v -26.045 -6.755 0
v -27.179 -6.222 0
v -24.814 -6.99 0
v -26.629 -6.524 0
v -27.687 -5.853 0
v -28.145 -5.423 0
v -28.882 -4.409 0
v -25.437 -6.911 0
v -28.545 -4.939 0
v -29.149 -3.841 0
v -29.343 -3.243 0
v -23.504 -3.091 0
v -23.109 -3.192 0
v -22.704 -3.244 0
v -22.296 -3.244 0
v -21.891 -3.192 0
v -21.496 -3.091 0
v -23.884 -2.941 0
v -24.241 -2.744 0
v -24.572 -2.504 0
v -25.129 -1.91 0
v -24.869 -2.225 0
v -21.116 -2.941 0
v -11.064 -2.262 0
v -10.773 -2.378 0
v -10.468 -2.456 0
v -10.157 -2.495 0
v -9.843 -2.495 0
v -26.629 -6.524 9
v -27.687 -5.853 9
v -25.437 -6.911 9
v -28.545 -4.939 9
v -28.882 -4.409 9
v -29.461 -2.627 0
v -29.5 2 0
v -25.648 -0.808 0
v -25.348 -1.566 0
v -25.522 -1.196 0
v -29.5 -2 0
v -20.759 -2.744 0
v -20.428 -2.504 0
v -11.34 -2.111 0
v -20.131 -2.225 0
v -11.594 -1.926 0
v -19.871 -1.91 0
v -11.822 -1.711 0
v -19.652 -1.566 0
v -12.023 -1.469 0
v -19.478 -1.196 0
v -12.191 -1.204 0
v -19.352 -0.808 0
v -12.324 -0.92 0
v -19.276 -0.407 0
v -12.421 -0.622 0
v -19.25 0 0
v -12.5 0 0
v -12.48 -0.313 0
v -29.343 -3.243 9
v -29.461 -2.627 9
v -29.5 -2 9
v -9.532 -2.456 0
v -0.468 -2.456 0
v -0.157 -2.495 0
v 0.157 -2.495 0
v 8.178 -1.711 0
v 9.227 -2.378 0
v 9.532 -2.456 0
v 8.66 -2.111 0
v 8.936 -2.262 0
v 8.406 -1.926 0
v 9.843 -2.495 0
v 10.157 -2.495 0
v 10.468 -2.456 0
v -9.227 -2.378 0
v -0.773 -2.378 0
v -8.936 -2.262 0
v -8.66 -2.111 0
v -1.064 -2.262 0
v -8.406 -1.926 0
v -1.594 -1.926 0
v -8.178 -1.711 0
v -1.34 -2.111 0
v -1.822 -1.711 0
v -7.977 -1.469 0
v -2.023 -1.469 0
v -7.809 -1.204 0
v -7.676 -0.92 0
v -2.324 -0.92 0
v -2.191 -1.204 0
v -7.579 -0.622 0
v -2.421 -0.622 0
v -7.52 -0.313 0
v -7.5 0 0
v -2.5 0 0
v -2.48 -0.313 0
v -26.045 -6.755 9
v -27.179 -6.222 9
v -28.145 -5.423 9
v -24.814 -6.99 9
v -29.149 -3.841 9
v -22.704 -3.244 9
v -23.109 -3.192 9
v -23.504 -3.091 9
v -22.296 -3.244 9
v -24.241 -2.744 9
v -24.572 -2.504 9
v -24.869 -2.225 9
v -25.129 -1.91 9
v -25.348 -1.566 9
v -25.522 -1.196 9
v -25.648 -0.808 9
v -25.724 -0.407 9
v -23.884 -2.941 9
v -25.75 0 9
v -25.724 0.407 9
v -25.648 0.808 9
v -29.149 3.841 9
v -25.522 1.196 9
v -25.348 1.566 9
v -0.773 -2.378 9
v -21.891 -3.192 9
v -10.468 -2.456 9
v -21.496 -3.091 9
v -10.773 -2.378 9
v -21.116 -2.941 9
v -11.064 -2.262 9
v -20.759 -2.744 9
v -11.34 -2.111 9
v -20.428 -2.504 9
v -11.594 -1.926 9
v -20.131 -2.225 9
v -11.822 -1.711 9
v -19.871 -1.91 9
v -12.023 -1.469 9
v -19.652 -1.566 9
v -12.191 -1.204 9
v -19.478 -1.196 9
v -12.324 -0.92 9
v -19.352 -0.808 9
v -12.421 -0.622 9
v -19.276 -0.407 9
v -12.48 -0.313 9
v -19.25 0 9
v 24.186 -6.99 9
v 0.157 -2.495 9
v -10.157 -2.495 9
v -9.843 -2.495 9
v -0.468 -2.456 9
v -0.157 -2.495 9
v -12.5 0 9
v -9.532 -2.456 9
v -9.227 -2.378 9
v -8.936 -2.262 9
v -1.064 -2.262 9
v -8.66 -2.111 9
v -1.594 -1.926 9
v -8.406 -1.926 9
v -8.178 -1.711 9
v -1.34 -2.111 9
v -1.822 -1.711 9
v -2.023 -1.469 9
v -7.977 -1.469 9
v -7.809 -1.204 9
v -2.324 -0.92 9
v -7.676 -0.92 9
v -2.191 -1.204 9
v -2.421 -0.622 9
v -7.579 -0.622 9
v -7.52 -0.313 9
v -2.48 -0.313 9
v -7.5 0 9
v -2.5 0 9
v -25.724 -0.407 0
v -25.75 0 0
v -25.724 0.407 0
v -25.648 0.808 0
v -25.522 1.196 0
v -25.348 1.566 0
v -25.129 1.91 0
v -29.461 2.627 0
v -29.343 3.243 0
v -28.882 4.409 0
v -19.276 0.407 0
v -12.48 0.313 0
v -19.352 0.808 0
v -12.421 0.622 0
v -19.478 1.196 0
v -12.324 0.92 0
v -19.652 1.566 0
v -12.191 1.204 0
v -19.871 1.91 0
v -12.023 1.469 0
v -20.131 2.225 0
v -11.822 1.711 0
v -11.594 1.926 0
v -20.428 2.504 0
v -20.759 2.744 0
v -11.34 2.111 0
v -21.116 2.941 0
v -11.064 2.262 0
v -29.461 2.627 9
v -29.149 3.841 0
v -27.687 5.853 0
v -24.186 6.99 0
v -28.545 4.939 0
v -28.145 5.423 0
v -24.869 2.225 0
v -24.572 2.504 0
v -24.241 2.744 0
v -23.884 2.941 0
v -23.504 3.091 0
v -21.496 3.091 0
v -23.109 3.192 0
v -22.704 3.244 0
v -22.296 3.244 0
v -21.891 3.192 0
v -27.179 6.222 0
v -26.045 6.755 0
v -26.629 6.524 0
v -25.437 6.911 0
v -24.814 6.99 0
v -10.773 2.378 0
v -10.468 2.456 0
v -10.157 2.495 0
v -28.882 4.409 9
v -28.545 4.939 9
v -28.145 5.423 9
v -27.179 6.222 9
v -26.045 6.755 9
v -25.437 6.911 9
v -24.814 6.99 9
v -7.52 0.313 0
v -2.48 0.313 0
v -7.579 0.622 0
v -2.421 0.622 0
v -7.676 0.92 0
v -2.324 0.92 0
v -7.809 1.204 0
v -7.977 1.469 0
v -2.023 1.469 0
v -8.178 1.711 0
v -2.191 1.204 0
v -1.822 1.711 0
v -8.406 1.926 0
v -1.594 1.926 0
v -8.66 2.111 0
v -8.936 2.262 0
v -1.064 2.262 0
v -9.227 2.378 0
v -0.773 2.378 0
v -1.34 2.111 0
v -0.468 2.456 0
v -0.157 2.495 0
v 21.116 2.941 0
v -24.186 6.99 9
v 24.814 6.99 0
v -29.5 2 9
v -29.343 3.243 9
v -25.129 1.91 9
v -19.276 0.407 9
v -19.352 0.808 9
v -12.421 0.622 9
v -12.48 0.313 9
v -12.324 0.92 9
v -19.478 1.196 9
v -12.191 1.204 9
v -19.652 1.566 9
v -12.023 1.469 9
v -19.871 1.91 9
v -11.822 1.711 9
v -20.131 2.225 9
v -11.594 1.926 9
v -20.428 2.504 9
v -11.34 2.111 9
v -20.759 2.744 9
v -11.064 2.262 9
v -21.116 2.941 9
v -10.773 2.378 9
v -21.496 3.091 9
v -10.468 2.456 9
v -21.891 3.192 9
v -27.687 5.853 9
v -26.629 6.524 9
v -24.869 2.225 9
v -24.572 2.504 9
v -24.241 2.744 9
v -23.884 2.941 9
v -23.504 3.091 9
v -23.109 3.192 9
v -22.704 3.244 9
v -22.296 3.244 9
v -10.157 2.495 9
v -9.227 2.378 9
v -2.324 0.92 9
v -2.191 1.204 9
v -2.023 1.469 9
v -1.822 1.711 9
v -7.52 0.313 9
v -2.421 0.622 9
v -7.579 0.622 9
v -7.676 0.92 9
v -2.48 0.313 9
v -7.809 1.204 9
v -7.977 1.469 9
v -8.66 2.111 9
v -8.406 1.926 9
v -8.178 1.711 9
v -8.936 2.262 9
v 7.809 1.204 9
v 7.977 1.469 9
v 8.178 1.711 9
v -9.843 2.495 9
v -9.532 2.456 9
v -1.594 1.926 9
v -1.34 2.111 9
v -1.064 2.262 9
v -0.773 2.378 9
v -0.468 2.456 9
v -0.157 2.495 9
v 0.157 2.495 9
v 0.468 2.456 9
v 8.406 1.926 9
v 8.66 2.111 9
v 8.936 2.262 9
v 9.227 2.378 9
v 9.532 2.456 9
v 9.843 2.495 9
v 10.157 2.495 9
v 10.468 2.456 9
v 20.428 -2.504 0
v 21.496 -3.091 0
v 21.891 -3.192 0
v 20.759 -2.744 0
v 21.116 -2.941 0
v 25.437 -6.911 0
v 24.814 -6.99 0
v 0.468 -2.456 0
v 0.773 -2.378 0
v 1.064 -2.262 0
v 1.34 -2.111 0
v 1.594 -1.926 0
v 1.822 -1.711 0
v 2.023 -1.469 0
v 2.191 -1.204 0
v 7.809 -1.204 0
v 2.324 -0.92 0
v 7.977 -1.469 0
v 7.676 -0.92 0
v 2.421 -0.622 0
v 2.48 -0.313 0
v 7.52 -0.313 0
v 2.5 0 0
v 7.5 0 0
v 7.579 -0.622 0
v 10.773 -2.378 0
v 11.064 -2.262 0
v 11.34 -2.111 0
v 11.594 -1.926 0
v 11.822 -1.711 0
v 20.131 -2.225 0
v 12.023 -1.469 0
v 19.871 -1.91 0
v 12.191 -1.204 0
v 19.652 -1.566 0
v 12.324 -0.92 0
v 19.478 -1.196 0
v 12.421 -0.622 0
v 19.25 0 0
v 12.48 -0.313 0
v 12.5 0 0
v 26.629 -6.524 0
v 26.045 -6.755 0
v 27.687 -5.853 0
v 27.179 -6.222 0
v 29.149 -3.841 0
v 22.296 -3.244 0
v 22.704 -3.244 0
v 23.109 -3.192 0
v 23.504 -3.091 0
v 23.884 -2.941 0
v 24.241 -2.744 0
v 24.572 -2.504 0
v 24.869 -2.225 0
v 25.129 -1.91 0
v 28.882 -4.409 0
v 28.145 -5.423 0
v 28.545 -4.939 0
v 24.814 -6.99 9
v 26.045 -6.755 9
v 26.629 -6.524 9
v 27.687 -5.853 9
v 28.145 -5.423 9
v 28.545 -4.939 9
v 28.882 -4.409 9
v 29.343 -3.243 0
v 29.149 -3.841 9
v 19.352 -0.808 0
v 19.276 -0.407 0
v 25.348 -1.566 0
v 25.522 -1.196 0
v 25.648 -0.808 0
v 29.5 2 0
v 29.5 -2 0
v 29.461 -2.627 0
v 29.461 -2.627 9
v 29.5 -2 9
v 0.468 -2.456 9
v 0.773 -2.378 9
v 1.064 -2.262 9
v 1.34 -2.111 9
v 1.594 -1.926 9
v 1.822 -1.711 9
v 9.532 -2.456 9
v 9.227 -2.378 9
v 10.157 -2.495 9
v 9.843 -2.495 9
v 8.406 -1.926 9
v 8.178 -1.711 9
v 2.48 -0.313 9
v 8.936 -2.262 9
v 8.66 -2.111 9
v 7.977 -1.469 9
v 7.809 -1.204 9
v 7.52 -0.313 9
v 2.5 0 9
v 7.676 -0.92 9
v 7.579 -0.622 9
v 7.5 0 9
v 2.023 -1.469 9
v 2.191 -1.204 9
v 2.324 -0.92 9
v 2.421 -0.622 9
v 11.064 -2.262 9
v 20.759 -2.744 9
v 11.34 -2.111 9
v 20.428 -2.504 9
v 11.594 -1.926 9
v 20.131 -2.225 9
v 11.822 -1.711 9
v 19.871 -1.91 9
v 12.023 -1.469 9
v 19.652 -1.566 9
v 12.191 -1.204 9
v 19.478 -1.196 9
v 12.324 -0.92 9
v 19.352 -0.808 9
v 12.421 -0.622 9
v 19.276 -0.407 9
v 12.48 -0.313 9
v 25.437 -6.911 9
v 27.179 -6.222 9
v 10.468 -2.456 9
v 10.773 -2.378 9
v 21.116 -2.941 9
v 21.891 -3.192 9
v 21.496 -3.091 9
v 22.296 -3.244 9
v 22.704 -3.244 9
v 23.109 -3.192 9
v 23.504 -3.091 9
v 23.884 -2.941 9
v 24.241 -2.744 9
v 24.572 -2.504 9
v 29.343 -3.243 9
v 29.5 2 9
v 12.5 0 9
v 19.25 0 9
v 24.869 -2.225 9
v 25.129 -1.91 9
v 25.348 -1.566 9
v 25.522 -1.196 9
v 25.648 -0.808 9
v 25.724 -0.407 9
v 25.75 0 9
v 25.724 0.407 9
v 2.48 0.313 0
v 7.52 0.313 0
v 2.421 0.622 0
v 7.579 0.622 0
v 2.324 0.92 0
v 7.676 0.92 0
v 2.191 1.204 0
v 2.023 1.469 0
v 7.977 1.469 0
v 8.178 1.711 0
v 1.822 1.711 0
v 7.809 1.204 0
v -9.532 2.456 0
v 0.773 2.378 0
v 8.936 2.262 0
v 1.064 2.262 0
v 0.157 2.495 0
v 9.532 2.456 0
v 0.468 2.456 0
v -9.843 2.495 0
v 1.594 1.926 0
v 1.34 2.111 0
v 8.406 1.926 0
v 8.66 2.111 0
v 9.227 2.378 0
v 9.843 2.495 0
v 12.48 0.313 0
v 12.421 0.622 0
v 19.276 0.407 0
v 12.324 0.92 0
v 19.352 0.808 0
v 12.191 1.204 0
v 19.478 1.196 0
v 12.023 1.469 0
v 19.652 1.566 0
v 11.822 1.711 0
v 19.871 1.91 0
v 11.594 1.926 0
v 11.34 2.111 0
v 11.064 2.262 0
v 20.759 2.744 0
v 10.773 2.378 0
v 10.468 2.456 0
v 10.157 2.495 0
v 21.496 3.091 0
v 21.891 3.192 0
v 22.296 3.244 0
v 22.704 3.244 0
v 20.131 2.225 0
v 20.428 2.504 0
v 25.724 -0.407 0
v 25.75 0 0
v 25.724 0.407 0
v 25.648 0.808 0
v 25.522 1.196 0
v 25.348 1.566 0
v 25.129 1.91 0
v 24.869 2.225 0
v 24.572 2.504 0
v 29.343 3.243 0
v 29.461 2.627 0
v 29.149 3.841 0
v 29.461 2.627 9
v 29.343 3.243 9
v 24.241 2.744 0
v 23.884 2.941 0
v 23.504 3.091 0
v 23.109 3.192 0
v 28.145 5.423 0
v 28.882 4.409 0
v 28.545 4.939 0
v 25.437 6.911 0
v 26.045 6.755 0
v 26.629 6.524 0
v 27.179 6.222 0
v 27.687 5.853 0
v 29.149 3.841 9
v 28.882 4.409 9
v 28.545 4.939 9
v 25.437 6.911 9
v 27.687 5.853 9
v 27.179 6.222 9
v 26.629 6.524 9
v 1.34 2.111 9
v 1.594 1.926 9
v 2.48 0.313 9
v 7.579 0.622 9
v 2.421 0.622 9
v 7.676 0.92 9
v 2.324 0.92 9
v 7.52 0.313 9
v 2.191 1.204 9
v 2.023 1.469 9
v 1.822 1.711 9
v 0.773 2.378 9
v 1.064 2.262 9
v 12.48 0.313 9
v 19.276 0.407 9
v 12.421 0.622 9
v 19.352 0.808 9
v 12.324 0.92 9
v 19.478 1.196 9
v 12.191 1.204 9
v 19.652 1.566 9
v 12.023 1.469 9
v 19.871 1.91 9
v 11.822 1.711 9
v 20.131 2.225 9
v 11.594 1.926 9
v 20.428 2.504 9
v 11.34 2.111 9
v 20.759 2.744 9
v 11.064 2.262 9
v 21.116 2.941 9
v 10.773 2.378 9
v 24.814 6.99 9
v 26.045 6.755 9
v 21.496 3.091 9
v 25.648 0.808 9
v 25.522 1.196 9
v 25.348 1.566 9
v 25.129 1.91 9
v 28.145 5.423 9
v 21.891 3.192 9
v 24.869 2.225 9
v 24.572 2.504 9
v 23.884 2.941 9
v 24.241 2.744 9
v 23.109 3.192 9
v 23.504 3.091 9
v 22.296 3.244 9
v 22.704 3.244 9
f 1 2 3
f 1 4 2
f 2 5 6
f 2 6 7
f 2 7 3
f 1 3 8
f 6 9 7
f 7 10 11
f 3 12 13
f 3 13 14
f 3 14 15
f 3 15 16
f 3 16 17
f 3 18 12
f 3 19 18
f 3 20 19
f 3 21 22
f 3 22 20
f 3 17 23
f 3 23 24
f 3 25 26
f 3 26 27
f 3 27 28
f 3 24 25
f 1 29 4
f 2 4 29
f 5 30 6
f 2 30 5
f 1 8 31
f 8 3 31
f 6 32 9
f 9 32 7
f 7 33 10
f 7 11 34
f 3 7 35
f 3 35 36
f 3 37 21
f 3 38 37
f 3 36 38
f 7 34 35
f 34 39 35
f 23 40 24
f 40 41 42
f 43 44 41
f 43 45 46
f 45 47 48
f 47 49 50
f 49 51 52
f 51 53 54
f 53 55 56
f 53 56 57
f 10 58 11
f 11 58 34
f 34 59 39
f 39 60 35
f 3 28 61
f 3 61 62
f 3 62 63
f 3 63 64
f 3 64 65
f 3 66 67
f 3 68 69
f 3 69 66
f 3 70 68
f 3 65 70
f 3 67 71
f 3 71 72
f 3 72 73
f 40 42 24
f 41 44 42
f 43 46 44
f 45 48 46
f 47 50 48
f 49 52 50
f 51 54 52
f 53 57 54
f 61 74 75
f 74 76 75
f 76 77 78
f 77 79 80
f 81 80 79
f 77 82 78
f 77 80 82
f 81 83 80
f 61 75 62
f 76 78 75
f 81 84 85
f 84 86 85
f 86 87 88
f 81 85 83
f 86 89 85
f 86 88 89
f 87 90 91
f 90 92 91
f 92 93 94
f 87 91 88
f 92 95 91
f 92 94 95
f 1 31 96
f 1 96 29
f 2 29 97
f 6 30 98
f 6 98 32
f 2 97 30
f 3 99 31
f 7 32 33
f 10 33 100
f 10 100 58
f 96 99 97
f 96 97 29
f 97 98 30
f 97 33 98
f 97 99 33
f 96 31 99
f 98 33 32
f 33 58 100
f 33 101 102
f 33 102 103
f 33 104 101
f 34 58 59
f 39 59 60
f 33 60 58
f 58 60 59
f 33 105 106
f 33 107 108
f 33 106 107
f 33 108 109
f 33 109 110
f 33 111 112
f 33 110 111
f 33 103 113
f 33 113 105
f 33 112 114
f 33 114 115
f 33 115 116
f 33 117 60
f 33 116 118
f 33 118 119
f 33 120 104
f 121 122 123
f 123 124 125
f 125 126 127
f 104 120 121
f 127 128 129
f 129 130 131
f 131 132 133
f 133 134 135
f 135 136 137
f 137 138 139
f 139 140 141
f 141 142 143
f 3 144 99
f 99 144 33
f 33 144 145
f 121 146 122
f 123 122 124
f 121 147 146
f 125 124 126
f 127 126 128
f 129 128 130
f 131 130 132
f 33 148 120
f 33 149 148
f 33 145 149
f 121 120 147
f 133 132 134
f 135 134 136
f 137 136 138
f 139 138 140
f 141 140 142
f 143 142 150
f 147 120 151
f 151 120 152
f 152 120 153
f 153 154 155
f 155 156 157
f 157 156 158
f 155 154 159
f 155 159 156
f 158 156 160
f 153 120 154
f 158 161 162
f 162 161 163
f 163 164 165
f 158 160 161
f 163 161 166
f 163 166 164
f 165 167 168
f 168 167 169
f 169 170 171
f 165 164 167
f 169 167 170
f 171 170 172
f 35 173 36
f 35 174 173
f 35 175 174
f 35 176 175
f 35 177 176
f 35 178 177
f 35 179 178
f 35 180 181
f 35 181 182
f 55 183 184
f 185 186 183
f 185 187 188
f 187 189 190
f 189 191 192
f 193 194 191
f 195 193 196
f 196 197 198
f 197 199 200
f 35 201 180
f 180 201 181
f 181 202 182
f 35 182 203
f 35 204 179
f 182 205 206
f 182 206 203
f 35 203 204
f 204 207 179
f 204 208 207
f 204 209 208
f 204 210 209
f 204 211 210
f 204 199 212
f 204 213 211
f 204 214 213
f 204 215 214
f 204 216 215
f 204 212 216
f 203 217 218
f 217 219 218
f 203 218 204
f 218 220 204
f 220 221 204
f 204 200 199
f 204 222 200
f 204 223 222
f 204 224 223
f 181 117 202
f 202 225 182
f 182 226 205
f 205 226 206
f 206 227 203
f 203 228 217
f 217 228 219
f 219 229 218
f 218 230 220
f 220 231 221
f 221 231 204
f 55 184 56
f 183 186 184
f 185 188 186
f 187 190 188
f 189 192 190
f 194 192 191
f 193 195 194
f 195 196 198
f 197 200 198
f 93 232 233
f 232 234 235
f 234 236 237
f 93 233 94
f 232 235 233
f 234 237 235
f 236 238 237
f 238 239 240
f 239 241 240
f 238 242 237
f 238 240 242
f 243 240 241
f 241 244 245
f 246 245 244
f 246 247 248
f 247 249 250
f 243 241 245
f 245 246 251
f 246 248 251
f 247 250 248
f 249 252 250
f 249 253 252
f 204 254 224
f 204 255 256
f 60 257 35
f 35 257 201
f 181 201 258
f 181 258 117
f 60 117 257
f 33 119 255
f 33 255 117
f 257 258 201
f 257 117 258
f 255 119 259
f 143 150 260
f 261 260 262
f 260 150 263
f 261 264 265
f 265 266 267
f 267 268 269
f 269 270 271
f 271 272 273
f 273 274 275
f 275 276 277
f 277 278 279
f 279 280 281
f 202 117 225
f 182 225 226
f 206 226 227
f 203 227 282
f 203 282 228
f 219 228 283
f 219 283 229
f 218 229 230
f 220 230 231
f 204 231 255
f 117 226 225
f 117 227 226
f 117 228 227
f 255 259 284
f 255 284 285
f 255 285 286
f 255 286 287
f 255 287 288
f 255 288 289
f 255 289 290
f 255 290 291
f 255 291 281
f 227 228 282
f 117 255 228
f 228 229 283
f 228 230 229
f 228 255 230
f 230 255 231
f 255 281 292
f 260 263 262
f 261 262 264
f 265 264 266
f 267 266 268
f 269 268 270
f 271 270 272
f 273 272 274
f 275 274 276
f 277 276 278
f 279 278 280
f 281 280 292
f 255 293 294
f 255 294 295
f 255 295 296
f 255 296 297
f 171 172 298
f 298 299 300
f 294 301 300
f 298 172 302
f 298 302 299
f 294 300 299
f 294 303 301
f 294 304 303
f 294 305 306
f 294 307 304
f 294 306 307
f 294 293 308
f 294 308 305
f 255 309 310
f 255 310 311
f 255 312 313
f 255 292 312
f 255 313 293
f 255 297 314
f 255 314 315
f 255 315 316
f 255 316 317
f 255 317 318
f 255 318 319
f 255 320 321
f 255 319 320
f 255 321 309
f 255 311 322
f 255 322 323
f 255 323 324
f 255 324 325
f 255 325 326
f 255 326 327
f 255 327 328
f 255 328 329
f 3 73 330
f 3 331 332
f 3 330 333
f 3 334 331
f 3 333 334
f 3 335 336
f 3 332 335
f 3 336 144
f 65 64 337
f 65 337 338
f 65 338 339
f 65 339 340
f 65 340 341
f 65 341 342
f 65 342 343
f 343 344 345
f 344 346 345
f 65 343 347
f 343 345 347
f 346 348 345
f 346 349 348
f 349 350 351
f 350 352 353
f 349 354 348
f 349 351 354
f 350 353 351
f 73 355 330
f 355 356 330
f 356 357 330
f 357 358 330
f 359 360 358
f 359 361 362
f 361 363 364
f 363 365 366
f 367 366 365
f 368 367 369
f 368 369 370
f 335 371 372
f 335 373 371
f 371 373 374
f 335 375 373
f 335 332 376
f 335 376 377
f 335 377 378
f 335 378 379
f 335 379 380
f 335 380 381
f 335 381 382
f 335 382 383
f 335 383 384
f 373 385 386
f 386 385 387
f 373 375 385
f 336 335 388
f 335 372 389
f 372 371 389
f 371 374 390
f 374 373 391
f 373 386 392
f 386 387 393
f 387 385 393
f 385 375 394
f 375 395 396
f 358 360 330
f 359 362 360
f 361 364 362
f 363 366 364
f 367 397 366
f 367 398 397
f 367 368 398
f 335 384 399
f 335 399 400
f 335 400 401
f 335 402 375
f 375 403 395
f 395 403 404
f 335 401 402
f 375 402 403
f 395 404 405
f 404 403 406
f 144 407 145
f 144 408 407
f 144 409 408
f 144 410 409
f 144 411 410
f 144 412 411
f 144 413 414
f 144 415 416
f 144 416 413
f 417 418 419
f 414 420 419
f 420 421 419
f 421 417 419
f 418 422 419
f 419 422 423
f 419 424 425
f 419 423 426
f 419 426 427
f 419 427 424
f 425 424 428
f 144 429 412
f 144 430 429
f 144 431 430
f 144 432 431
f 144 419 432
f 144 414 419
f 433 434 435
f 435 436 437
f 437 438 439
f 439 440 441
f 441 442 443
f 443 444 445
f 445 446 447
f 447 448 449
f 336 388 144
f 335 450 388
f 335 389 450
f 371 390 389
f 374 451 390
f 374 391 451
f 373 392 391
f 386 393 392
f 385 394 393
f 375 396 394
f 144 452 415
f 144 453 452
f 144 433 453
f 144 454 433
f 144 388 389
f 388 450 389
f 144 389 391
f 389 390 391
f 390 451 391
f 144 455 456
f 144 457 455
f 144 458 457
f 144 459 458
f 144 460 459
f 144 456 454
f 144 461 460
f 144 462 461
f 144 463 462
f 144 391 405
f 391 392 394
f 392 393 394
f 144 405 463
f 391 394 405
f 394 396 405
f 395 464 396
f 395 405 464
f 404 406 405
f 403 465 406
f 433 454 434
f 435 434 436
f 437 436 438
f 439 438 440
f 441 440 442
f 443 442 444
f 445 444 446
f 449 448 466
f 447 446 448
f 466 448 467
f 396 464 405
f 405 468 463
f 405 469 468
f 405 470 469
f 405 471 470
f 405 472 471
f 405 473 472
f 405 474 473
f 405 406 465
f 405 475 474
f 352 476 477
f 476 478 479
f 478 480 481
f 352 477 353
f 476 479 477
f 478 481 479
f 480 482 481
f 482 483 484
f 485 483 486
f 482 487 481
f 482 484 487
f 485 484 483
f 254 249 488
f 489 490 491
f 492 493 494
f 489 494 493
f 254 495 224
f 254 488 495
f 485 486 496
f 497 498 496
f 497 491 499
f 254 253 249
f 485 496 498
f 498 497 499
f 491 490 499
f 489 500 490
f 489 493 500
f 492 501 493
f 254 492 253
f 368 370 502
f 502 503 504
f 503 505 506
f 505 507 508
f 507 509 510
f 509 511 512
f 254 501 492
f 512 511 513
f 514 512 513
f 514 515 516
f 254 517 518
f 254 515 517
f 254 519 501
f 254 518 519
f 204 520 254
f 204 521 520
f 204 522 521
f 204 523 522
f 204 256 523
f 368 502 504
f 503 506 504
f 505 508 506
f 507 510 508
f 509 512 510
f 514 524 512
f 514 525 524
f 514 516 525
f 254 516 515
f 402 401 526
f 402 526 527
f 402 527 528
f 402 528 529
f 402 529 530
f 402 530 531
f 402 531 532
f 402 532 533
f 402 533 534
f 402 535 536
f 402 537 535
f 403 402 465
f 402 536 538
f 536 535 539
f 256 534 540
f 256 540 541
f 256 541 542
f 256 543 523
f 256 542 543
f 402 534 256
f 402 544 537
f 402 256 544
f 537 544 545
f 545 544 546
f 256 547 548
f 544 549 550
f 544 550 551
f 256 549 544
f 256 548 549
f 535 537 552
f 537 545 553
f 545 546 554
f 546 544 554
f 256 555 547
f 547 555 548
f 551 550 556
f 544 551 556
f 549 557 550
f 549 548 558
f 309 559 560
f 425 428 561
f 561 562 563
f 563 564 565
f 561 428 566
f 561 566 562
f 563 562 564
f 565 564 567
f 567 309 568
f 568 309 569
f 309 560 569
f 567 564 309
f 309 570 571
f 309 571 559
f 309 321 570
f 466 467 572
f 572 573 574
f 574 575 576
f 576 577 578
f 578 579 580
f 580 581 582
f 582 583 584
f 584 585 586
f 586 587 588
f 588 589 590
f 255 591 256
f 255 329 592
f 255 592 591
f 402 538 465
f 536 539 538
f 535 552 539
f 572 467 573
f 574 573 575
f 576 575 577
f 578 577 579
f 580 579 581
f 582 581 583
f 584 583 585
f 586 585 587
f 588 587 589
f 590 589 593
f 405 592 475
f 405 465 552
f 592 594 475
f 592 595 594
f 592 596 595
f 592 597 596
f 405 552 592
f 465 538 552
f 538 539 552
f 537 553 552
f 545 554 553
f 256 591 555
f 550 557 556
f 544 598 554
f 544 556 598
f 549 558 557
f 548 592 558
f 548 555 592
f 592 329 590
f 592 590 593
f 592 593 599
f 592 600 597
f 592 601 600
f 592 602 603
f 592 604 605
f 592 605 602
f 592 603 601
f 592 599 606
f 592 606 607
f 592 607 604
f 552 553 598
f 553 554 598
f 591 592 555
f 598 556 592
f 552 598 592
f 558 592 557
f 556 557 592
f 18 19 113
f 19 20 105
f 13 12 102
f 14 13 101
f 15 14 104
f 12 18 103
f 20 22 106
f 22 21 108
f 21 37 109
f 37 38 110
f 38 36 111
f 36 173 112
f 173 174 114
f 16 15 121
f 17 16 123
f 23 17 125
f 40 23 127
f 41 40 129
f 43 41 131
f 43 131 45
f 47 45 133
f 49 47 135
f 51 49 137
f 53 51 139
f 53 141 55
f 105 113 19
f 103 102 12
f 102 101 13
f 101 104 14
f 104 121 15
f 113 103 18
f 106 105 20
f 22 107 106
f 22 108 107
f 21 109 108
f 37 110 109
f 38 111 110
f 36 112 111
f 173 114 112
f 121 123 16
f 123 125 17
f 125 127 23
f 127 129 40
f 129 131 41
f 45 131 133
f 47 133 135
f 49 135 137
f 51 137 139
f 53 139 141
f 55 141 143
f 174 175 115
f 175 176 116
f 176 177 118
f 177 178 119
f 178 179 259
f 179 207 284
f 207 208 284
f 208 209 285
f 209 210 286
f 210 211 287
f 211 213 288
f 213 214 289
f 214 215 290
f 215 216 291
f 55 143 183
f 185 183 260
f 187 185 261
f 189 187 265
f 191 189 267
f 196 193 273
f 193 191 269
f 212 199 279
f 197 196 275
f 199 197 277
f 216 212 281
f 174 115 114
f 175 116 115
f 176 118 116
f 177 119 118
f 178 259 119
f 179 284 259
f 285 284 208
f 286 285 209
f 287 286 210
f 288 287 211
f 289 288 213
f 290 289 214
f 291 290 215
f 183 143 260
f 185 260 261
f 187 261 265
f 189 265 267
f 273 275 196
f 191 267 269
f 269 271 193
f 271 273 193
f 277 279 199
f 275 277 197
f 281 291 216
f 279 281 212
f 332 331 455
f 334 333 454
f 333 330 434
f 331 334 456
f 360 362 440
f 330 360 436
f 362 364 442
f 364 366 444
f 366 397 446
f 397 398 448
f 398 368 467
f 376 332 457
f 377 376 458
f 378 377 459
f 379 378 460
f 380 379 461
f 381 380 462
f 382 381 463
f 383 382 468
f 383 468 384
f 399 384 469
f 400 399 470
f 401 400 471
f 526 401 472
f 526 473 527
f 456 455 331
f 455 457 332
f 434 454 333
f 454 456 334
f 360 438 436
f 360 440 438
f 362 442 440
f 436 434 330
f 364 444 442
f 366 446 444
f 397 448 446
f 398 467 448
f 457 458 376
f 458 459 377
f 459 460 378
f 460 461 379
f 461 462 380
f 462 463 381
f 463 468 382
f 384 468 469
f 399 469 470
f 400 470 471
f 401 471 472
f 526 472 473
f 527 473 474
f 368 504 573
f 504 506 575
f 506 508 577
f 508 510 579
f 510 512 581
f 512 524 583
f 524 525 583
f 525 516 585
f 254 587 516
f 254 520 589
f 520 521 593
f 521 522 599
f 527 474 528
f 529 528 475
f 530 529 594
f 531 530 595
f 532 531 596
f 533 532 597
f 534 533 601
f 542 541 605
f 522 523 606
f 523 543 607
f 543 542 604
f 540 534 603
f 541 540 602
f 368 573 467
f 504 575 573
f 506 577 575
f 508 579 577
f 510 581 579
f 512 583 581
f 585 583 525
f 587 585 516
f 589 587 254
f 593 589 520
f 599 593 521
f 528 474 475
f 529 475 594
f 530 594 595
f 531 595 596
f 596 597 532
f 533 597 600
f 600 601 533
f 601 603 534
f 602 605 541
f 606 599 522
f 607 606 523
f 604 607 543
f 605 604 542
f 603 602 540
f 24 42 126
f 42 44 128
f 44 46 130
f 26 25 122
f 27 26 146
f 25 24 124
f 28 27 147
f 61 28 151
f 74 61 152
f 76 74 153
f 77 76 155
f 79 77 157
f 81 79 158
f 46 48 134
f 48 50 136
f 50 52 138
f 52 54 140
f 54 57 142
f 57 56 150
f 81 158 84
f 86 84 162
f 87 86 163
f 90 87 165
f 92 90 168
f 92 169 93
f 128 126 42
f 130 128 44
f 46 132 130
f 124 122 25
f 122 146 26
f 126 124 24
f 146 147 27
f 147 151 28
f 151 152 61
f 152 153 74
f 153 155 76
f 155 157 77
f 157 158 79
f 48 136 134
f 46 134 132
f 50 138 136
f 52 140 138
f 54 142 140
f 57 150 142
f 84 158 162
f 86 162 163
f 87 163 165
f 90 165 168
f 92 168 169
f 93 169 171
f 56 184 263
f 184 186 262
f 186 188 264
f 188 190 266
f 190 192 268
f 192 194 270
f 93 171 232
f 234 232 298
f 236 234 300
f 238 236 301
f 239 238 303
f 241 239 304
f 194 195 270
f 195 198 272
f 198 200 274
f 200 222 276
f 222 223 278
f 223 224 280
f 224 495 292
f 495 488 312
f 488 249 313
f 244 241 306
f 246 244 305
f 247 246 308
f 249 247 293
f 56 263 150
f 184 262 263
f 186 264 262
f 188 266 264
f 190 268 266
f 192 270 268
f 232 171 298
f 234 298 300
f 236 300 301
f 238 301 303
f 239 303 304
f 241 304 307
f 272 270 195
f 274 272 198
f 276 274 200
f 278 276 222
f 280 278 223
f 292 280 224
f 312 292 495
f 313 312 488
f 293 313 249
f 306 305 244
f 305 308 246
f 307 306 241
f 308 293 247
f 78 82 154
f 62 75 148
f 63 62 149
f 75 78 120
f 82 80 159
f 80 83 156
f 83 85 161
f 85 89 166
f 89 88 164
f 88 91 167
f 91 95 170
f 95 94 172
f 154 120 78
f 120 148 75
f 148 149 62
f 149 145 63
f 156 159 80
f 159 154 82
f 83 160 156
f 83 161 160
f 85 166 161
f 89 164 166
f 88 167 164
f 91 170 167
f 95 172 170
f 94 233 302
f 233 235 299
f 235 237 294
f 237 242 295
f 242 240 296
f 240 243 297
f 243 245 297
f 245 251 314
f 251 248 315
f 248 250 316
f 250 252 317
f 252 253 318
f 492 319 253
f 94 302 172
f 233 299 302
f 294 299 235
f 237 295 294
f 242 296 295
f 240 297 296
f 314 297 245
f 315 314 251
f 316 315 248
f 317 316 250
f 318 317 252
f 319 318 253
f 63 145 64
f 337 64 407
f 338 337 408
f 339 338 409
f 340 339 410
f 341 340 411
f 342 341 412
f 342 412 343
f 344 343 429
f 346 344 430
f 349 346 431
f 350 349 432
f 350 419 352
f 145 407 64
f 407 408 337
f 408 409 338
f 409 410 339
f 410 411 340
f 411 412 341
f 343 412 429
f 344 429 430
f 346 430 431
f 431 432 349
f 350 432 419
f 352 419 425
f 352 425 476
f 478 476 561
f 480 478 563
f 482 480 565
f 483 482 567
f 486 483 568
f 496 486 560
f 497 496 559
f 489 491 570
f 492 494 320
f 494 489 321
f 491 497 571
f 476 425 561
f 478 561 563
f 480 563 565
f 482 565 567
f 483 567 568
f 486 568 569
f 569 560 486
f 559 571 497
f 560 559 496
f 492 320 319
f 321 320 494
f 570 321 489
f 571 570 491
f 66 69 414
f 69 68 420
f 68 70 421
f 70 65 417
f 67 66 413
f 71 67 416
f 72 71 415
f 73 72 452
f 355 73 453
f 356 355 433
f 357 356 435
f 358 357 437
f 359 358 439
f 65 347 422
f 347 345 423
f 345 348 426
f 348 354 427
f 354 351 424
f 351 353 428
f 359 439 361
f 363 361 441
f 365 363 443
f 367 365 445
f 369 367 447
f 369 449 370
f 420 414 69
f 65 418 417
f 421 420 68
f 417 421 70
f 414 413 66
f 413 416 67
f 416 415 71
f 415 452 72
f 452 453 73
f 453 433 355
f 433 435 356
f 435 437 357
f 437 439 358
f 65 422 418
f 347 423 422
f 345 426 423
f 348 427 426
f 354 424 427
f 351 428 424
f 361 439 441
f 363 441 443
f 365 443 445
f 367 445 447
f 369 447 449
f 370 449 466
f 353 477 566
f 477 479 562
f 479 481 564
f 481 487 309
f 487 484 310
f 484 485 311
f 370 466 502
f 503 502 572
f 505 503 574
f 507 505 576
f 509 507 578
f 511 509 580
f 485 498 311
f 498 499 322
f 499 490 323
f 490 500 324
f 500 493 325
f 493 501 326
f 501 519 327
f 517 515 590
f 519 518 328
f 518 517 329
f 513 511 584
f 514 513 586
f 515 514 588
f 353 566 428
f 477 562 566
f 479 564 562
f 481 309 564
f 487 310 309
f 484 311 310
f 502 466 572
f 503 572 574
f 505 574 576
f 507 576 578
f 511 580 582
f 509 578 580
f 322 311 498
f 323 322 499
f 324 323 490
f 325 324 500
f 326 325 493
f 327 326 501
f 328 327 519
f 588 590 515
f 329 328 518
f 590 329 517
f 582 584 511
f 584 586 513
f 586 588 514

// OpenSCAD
$fn = 50;

difference() {
	union() {
		hull() {
			translate(v = [-24.5, 2.0, 0]) {
				cylinder(h = 9, r = 5);
			}
			translate(v = [24.5, 2.0, 0]) {
				cylinder(h = 9, r = 5);
			}
			translate(v = [-24.5, -2.0, 0]) {
				cylinder(h = 9, r = 5);
			}
			translate(v = [24.5, -2.0, 0]) {
				cylinder(h = 9, r = 5);
			}
		}
	}
	union() {
		translate(v = [-22.5, 0.0, 0]) {
			cylinder(h = 9, r = 3.25);
		}
		translate(v = [22.5, 0.0, 0]) {
			cylinder(h = 9, r = 3.25);
		}
		translate(v = [-10.0, 0, 0.0]) {
			cylinder(h = 9, r = 2.5);
		}
		cylinder(h = 9, r = 2.5);
		translate(v = [10.0, 0, 0.0]) {
			cylinder(h = 9, r = 2.5);
		}
	}
}
